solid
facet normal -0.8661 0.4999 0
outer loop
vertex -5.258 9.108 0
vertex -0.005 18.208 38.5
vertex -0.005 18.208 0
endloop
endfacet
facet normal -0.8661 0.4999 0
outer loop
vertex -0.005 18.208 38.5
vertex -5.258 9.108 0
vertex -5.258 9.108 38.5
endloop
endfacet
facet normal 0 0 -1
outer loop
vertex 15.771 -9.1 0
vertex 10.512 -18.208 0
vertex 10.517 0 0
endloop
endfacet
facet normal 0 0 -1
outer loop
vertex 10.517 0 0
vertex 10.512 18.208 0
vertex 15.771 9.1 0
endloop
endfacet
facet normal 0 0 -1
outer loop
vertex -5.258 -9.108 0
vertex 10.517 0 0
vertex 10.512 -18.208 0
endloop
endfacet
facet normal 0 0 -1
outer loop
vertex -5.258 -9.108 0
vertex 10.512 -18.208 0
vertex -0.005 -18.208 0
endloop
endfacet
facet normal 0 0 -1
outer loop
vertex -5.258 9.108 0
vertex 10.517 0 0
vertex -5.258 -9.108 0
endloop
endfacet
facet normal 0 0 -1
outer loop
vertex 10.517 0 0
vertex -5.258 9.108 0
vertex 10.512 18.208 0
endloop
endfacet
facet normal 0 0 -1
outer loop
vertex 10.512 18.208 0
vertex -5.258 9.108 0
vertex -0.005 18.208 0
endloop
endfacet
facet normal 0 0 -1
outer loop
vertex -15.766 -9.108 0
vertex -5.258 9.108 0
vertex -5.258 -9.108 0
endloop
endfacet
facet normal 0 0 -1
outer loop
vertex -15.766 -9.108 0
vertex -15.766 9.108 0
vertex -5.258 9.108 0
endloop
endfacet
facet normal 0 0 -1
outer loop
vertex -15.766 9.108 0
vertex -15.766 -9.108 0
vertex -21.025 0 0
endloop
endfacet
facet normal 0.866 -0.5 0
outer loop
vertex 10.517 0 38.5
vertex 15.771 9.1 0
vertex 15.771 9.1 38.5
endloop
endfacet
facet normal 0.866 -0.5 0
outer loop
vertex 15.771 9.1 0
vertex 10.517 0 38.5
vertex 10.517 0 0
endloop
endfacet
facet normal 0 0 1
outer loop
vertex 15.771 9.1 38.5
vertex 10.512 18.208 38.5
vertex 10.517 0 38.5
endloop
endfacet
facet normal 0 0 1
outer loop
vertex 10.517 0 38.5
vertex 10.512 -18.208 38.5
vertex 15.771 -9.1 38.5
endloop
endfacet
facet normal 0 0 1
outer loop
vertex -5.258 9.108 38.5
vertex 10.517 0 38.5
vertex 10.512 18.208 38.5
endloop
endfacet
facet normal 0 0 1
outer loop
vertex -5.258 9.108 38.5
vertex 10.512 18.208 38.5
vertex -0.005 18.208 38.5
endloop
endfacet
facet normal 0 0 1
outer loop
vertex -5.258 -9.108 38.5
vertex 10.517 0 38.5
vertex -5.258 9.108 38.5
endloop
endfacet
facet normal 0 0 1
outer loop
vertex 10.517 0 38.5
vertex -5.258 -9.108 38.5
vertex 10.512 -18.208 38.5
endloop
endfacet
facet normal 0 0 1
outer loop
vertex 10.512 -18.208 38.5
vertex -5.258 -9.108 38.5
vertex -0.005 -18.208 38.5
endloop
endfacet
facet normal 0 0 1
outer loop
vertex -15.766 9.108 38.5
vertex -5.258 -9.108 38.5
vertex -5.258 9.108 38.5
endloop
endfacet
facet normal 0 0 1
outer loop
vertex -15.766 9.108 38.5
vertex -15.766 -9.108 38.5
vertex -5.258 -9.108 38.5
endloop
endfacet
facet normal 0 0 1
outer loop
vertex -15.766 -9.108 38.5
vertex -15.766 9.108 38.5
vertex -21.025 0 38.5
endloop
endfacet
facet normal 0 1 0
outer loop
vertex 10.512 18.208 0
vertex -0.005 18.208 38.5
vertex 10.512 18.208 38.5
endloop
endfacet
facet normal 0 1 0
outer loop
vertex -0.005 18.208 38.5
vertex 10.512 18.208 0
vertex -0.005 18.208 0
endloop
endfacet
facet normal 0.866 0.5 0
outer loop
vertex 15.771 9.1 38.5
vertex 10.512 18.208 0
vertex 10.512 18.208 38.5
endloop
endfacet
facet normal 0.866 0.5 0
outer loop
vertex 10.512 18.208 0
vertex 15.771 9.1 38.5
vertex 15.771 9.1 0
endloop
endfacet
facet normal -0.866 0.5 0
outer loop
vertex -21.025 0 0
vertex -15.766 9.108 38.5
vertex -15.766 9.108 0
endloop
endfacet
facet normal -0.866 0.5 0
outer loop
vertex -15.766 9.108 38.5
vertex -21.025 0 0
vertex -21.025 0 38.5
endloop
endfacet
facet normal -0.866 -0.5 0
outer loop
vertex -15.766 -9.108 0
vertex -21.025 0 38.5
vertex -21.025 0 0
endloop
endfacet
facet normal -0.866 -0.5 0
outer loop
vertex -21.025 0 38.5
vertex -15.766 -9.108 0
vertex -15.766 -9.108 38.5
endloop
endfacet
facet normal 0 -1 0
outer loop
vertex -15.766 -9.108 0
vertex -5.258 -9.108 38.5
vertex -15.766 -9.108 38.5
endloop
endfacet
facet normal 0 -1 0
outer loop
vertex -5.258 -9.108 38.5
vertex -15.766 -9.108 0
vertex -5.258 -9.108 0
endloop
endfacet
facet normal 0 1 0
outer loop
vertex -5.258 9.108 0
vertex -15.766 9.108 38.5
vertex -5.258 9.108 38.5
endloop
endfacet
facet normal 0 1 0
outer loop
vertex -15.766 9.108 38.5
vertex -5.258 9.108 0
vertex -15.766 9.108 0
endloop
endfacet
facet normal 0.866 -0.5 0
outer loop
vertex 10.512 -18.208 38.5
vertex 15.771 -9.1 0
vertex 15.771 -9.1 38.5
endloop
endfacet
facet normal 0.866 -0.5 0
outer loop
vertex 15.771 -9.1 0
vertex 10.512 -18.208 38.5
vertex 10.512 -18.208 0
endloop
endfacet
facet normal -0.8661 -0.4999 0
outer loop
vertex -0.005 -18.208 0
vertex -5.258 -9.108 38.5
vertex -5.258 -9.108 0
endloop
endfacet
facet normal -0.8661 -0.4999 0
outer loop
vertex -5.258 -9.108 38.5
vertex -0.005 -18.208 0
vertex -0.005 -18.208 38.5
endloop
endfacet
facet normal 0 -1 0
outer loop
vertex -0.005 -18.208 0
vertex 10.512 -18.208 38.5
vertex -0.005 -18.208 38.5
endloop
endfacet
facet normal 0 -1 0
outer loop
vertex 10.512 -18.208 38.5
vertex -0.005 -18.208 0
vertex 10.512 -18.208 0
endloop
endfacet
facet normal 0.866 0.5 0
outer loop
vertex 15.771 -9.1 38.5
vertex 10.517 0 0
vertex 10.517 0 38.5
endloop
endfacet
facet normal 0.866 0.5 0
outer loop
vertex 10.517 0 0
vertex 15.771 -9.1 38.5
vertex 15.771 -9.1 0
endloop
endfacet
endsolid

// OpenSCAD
// file: dimensions.scad
measureX = 9.10; // 92/2/2/sqrt(19)*sqrt(3)
measureY = 9.10; 
measureZ = 7.7; // 54/7 is about 7.7

halfSide = 1*tan(30);
h1 = 1;
dd = 0.001;
// main file
include <dimensions.scad>

hh = [5,5,5];

scale([measureX,measureY,measureZ])  union() {
    translate([halfSide,1,0]) 
    linear_extrude(height = hh[0]*h1, center = false)
    circle(2*halfSide + dd,$fn=6);
    
    translate([-2*halfSide,0,0]) 
    linear_extrude(height = hh[1]*h1, center = false)
    circle(2*halfSide + dd,$fn=6);
    
    translate([halfSide,-1,0]) 
    linear_extrude(height = hh[2]*h1, center = false)
    circle(2*halfSide + dd,$fn=6);
}
